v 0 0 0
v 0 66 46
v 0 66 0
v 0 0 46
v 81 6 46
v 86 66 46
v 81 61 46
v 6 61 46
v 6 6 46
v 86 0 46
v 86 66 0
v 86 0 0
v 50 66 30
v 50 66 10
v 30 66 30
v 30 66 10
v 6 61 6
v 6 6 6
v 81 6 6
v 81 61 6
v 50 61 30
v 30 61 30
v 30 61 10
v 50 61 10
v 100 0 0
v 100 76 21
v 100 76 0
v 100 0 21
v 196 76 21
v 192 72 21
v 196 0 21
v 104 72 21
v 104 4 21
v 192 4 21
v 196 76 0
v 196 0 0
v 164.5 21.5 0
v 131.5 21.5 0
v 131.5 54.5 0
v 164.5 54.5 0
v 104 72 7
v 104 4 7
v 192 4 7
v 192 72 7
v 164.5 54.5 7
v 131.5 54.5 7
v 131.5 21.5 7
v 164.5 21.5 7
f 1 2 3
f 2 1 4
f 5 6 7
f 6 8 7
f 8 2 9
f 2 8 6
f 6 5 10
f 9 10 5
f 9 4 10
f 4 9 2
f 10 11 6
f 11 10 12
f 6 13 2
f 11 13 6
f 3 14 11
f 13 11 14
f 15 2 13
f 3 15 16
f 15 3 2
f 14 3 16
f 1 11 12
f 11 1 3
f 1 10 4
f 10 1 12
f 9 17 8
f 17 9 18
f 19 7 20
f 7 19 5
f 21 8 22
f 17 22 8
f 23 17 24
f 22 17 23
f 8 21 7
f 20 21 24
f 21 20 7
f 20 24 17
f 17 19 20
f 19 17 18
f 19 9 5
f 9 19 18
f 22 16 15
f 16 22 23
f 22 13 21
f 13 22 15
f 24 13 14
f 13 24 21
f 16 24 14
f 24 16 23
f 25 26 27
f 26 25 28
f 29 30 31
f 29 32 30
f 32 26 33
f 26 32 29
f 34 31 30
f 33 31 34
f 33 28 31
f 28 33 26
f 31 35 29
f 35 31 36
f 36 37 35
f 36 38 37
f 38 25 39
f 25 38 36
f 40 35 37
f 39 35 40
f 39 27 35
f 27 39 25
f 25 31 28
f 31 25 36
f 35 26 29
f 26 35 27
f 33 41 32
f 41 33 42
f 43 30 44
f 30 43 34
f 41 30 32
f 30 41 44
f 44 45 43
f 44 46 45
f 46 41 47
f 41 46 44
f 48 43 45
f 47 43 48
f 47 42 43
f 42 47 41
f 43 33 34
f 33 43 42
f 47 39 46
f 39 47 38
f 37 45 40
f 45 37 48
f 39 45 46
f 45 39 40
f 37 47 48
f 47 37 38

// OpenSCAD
difference(){
    color([0,0,1])
    cube([86,66,46]);  
    translate([6,6,6]){
        color(1,0,0)
        cube([75,55,41]); 
    }
    translate([40,60,20]){
        color(1,0,0)
        cube(center=true,[20,20,20]); 
    }
}

difference(){
    translate([100,0,0]){
        color([0,0,1])
        cube([96,76,21]);
    }
    translate([104,4,07]){
        color([1,0,0])
        cube([88,68,15]);
    }
   translate([148,38,-1]){
        color([1,0,0])
        cube(center = true,[33,33,25]);
   }
}
